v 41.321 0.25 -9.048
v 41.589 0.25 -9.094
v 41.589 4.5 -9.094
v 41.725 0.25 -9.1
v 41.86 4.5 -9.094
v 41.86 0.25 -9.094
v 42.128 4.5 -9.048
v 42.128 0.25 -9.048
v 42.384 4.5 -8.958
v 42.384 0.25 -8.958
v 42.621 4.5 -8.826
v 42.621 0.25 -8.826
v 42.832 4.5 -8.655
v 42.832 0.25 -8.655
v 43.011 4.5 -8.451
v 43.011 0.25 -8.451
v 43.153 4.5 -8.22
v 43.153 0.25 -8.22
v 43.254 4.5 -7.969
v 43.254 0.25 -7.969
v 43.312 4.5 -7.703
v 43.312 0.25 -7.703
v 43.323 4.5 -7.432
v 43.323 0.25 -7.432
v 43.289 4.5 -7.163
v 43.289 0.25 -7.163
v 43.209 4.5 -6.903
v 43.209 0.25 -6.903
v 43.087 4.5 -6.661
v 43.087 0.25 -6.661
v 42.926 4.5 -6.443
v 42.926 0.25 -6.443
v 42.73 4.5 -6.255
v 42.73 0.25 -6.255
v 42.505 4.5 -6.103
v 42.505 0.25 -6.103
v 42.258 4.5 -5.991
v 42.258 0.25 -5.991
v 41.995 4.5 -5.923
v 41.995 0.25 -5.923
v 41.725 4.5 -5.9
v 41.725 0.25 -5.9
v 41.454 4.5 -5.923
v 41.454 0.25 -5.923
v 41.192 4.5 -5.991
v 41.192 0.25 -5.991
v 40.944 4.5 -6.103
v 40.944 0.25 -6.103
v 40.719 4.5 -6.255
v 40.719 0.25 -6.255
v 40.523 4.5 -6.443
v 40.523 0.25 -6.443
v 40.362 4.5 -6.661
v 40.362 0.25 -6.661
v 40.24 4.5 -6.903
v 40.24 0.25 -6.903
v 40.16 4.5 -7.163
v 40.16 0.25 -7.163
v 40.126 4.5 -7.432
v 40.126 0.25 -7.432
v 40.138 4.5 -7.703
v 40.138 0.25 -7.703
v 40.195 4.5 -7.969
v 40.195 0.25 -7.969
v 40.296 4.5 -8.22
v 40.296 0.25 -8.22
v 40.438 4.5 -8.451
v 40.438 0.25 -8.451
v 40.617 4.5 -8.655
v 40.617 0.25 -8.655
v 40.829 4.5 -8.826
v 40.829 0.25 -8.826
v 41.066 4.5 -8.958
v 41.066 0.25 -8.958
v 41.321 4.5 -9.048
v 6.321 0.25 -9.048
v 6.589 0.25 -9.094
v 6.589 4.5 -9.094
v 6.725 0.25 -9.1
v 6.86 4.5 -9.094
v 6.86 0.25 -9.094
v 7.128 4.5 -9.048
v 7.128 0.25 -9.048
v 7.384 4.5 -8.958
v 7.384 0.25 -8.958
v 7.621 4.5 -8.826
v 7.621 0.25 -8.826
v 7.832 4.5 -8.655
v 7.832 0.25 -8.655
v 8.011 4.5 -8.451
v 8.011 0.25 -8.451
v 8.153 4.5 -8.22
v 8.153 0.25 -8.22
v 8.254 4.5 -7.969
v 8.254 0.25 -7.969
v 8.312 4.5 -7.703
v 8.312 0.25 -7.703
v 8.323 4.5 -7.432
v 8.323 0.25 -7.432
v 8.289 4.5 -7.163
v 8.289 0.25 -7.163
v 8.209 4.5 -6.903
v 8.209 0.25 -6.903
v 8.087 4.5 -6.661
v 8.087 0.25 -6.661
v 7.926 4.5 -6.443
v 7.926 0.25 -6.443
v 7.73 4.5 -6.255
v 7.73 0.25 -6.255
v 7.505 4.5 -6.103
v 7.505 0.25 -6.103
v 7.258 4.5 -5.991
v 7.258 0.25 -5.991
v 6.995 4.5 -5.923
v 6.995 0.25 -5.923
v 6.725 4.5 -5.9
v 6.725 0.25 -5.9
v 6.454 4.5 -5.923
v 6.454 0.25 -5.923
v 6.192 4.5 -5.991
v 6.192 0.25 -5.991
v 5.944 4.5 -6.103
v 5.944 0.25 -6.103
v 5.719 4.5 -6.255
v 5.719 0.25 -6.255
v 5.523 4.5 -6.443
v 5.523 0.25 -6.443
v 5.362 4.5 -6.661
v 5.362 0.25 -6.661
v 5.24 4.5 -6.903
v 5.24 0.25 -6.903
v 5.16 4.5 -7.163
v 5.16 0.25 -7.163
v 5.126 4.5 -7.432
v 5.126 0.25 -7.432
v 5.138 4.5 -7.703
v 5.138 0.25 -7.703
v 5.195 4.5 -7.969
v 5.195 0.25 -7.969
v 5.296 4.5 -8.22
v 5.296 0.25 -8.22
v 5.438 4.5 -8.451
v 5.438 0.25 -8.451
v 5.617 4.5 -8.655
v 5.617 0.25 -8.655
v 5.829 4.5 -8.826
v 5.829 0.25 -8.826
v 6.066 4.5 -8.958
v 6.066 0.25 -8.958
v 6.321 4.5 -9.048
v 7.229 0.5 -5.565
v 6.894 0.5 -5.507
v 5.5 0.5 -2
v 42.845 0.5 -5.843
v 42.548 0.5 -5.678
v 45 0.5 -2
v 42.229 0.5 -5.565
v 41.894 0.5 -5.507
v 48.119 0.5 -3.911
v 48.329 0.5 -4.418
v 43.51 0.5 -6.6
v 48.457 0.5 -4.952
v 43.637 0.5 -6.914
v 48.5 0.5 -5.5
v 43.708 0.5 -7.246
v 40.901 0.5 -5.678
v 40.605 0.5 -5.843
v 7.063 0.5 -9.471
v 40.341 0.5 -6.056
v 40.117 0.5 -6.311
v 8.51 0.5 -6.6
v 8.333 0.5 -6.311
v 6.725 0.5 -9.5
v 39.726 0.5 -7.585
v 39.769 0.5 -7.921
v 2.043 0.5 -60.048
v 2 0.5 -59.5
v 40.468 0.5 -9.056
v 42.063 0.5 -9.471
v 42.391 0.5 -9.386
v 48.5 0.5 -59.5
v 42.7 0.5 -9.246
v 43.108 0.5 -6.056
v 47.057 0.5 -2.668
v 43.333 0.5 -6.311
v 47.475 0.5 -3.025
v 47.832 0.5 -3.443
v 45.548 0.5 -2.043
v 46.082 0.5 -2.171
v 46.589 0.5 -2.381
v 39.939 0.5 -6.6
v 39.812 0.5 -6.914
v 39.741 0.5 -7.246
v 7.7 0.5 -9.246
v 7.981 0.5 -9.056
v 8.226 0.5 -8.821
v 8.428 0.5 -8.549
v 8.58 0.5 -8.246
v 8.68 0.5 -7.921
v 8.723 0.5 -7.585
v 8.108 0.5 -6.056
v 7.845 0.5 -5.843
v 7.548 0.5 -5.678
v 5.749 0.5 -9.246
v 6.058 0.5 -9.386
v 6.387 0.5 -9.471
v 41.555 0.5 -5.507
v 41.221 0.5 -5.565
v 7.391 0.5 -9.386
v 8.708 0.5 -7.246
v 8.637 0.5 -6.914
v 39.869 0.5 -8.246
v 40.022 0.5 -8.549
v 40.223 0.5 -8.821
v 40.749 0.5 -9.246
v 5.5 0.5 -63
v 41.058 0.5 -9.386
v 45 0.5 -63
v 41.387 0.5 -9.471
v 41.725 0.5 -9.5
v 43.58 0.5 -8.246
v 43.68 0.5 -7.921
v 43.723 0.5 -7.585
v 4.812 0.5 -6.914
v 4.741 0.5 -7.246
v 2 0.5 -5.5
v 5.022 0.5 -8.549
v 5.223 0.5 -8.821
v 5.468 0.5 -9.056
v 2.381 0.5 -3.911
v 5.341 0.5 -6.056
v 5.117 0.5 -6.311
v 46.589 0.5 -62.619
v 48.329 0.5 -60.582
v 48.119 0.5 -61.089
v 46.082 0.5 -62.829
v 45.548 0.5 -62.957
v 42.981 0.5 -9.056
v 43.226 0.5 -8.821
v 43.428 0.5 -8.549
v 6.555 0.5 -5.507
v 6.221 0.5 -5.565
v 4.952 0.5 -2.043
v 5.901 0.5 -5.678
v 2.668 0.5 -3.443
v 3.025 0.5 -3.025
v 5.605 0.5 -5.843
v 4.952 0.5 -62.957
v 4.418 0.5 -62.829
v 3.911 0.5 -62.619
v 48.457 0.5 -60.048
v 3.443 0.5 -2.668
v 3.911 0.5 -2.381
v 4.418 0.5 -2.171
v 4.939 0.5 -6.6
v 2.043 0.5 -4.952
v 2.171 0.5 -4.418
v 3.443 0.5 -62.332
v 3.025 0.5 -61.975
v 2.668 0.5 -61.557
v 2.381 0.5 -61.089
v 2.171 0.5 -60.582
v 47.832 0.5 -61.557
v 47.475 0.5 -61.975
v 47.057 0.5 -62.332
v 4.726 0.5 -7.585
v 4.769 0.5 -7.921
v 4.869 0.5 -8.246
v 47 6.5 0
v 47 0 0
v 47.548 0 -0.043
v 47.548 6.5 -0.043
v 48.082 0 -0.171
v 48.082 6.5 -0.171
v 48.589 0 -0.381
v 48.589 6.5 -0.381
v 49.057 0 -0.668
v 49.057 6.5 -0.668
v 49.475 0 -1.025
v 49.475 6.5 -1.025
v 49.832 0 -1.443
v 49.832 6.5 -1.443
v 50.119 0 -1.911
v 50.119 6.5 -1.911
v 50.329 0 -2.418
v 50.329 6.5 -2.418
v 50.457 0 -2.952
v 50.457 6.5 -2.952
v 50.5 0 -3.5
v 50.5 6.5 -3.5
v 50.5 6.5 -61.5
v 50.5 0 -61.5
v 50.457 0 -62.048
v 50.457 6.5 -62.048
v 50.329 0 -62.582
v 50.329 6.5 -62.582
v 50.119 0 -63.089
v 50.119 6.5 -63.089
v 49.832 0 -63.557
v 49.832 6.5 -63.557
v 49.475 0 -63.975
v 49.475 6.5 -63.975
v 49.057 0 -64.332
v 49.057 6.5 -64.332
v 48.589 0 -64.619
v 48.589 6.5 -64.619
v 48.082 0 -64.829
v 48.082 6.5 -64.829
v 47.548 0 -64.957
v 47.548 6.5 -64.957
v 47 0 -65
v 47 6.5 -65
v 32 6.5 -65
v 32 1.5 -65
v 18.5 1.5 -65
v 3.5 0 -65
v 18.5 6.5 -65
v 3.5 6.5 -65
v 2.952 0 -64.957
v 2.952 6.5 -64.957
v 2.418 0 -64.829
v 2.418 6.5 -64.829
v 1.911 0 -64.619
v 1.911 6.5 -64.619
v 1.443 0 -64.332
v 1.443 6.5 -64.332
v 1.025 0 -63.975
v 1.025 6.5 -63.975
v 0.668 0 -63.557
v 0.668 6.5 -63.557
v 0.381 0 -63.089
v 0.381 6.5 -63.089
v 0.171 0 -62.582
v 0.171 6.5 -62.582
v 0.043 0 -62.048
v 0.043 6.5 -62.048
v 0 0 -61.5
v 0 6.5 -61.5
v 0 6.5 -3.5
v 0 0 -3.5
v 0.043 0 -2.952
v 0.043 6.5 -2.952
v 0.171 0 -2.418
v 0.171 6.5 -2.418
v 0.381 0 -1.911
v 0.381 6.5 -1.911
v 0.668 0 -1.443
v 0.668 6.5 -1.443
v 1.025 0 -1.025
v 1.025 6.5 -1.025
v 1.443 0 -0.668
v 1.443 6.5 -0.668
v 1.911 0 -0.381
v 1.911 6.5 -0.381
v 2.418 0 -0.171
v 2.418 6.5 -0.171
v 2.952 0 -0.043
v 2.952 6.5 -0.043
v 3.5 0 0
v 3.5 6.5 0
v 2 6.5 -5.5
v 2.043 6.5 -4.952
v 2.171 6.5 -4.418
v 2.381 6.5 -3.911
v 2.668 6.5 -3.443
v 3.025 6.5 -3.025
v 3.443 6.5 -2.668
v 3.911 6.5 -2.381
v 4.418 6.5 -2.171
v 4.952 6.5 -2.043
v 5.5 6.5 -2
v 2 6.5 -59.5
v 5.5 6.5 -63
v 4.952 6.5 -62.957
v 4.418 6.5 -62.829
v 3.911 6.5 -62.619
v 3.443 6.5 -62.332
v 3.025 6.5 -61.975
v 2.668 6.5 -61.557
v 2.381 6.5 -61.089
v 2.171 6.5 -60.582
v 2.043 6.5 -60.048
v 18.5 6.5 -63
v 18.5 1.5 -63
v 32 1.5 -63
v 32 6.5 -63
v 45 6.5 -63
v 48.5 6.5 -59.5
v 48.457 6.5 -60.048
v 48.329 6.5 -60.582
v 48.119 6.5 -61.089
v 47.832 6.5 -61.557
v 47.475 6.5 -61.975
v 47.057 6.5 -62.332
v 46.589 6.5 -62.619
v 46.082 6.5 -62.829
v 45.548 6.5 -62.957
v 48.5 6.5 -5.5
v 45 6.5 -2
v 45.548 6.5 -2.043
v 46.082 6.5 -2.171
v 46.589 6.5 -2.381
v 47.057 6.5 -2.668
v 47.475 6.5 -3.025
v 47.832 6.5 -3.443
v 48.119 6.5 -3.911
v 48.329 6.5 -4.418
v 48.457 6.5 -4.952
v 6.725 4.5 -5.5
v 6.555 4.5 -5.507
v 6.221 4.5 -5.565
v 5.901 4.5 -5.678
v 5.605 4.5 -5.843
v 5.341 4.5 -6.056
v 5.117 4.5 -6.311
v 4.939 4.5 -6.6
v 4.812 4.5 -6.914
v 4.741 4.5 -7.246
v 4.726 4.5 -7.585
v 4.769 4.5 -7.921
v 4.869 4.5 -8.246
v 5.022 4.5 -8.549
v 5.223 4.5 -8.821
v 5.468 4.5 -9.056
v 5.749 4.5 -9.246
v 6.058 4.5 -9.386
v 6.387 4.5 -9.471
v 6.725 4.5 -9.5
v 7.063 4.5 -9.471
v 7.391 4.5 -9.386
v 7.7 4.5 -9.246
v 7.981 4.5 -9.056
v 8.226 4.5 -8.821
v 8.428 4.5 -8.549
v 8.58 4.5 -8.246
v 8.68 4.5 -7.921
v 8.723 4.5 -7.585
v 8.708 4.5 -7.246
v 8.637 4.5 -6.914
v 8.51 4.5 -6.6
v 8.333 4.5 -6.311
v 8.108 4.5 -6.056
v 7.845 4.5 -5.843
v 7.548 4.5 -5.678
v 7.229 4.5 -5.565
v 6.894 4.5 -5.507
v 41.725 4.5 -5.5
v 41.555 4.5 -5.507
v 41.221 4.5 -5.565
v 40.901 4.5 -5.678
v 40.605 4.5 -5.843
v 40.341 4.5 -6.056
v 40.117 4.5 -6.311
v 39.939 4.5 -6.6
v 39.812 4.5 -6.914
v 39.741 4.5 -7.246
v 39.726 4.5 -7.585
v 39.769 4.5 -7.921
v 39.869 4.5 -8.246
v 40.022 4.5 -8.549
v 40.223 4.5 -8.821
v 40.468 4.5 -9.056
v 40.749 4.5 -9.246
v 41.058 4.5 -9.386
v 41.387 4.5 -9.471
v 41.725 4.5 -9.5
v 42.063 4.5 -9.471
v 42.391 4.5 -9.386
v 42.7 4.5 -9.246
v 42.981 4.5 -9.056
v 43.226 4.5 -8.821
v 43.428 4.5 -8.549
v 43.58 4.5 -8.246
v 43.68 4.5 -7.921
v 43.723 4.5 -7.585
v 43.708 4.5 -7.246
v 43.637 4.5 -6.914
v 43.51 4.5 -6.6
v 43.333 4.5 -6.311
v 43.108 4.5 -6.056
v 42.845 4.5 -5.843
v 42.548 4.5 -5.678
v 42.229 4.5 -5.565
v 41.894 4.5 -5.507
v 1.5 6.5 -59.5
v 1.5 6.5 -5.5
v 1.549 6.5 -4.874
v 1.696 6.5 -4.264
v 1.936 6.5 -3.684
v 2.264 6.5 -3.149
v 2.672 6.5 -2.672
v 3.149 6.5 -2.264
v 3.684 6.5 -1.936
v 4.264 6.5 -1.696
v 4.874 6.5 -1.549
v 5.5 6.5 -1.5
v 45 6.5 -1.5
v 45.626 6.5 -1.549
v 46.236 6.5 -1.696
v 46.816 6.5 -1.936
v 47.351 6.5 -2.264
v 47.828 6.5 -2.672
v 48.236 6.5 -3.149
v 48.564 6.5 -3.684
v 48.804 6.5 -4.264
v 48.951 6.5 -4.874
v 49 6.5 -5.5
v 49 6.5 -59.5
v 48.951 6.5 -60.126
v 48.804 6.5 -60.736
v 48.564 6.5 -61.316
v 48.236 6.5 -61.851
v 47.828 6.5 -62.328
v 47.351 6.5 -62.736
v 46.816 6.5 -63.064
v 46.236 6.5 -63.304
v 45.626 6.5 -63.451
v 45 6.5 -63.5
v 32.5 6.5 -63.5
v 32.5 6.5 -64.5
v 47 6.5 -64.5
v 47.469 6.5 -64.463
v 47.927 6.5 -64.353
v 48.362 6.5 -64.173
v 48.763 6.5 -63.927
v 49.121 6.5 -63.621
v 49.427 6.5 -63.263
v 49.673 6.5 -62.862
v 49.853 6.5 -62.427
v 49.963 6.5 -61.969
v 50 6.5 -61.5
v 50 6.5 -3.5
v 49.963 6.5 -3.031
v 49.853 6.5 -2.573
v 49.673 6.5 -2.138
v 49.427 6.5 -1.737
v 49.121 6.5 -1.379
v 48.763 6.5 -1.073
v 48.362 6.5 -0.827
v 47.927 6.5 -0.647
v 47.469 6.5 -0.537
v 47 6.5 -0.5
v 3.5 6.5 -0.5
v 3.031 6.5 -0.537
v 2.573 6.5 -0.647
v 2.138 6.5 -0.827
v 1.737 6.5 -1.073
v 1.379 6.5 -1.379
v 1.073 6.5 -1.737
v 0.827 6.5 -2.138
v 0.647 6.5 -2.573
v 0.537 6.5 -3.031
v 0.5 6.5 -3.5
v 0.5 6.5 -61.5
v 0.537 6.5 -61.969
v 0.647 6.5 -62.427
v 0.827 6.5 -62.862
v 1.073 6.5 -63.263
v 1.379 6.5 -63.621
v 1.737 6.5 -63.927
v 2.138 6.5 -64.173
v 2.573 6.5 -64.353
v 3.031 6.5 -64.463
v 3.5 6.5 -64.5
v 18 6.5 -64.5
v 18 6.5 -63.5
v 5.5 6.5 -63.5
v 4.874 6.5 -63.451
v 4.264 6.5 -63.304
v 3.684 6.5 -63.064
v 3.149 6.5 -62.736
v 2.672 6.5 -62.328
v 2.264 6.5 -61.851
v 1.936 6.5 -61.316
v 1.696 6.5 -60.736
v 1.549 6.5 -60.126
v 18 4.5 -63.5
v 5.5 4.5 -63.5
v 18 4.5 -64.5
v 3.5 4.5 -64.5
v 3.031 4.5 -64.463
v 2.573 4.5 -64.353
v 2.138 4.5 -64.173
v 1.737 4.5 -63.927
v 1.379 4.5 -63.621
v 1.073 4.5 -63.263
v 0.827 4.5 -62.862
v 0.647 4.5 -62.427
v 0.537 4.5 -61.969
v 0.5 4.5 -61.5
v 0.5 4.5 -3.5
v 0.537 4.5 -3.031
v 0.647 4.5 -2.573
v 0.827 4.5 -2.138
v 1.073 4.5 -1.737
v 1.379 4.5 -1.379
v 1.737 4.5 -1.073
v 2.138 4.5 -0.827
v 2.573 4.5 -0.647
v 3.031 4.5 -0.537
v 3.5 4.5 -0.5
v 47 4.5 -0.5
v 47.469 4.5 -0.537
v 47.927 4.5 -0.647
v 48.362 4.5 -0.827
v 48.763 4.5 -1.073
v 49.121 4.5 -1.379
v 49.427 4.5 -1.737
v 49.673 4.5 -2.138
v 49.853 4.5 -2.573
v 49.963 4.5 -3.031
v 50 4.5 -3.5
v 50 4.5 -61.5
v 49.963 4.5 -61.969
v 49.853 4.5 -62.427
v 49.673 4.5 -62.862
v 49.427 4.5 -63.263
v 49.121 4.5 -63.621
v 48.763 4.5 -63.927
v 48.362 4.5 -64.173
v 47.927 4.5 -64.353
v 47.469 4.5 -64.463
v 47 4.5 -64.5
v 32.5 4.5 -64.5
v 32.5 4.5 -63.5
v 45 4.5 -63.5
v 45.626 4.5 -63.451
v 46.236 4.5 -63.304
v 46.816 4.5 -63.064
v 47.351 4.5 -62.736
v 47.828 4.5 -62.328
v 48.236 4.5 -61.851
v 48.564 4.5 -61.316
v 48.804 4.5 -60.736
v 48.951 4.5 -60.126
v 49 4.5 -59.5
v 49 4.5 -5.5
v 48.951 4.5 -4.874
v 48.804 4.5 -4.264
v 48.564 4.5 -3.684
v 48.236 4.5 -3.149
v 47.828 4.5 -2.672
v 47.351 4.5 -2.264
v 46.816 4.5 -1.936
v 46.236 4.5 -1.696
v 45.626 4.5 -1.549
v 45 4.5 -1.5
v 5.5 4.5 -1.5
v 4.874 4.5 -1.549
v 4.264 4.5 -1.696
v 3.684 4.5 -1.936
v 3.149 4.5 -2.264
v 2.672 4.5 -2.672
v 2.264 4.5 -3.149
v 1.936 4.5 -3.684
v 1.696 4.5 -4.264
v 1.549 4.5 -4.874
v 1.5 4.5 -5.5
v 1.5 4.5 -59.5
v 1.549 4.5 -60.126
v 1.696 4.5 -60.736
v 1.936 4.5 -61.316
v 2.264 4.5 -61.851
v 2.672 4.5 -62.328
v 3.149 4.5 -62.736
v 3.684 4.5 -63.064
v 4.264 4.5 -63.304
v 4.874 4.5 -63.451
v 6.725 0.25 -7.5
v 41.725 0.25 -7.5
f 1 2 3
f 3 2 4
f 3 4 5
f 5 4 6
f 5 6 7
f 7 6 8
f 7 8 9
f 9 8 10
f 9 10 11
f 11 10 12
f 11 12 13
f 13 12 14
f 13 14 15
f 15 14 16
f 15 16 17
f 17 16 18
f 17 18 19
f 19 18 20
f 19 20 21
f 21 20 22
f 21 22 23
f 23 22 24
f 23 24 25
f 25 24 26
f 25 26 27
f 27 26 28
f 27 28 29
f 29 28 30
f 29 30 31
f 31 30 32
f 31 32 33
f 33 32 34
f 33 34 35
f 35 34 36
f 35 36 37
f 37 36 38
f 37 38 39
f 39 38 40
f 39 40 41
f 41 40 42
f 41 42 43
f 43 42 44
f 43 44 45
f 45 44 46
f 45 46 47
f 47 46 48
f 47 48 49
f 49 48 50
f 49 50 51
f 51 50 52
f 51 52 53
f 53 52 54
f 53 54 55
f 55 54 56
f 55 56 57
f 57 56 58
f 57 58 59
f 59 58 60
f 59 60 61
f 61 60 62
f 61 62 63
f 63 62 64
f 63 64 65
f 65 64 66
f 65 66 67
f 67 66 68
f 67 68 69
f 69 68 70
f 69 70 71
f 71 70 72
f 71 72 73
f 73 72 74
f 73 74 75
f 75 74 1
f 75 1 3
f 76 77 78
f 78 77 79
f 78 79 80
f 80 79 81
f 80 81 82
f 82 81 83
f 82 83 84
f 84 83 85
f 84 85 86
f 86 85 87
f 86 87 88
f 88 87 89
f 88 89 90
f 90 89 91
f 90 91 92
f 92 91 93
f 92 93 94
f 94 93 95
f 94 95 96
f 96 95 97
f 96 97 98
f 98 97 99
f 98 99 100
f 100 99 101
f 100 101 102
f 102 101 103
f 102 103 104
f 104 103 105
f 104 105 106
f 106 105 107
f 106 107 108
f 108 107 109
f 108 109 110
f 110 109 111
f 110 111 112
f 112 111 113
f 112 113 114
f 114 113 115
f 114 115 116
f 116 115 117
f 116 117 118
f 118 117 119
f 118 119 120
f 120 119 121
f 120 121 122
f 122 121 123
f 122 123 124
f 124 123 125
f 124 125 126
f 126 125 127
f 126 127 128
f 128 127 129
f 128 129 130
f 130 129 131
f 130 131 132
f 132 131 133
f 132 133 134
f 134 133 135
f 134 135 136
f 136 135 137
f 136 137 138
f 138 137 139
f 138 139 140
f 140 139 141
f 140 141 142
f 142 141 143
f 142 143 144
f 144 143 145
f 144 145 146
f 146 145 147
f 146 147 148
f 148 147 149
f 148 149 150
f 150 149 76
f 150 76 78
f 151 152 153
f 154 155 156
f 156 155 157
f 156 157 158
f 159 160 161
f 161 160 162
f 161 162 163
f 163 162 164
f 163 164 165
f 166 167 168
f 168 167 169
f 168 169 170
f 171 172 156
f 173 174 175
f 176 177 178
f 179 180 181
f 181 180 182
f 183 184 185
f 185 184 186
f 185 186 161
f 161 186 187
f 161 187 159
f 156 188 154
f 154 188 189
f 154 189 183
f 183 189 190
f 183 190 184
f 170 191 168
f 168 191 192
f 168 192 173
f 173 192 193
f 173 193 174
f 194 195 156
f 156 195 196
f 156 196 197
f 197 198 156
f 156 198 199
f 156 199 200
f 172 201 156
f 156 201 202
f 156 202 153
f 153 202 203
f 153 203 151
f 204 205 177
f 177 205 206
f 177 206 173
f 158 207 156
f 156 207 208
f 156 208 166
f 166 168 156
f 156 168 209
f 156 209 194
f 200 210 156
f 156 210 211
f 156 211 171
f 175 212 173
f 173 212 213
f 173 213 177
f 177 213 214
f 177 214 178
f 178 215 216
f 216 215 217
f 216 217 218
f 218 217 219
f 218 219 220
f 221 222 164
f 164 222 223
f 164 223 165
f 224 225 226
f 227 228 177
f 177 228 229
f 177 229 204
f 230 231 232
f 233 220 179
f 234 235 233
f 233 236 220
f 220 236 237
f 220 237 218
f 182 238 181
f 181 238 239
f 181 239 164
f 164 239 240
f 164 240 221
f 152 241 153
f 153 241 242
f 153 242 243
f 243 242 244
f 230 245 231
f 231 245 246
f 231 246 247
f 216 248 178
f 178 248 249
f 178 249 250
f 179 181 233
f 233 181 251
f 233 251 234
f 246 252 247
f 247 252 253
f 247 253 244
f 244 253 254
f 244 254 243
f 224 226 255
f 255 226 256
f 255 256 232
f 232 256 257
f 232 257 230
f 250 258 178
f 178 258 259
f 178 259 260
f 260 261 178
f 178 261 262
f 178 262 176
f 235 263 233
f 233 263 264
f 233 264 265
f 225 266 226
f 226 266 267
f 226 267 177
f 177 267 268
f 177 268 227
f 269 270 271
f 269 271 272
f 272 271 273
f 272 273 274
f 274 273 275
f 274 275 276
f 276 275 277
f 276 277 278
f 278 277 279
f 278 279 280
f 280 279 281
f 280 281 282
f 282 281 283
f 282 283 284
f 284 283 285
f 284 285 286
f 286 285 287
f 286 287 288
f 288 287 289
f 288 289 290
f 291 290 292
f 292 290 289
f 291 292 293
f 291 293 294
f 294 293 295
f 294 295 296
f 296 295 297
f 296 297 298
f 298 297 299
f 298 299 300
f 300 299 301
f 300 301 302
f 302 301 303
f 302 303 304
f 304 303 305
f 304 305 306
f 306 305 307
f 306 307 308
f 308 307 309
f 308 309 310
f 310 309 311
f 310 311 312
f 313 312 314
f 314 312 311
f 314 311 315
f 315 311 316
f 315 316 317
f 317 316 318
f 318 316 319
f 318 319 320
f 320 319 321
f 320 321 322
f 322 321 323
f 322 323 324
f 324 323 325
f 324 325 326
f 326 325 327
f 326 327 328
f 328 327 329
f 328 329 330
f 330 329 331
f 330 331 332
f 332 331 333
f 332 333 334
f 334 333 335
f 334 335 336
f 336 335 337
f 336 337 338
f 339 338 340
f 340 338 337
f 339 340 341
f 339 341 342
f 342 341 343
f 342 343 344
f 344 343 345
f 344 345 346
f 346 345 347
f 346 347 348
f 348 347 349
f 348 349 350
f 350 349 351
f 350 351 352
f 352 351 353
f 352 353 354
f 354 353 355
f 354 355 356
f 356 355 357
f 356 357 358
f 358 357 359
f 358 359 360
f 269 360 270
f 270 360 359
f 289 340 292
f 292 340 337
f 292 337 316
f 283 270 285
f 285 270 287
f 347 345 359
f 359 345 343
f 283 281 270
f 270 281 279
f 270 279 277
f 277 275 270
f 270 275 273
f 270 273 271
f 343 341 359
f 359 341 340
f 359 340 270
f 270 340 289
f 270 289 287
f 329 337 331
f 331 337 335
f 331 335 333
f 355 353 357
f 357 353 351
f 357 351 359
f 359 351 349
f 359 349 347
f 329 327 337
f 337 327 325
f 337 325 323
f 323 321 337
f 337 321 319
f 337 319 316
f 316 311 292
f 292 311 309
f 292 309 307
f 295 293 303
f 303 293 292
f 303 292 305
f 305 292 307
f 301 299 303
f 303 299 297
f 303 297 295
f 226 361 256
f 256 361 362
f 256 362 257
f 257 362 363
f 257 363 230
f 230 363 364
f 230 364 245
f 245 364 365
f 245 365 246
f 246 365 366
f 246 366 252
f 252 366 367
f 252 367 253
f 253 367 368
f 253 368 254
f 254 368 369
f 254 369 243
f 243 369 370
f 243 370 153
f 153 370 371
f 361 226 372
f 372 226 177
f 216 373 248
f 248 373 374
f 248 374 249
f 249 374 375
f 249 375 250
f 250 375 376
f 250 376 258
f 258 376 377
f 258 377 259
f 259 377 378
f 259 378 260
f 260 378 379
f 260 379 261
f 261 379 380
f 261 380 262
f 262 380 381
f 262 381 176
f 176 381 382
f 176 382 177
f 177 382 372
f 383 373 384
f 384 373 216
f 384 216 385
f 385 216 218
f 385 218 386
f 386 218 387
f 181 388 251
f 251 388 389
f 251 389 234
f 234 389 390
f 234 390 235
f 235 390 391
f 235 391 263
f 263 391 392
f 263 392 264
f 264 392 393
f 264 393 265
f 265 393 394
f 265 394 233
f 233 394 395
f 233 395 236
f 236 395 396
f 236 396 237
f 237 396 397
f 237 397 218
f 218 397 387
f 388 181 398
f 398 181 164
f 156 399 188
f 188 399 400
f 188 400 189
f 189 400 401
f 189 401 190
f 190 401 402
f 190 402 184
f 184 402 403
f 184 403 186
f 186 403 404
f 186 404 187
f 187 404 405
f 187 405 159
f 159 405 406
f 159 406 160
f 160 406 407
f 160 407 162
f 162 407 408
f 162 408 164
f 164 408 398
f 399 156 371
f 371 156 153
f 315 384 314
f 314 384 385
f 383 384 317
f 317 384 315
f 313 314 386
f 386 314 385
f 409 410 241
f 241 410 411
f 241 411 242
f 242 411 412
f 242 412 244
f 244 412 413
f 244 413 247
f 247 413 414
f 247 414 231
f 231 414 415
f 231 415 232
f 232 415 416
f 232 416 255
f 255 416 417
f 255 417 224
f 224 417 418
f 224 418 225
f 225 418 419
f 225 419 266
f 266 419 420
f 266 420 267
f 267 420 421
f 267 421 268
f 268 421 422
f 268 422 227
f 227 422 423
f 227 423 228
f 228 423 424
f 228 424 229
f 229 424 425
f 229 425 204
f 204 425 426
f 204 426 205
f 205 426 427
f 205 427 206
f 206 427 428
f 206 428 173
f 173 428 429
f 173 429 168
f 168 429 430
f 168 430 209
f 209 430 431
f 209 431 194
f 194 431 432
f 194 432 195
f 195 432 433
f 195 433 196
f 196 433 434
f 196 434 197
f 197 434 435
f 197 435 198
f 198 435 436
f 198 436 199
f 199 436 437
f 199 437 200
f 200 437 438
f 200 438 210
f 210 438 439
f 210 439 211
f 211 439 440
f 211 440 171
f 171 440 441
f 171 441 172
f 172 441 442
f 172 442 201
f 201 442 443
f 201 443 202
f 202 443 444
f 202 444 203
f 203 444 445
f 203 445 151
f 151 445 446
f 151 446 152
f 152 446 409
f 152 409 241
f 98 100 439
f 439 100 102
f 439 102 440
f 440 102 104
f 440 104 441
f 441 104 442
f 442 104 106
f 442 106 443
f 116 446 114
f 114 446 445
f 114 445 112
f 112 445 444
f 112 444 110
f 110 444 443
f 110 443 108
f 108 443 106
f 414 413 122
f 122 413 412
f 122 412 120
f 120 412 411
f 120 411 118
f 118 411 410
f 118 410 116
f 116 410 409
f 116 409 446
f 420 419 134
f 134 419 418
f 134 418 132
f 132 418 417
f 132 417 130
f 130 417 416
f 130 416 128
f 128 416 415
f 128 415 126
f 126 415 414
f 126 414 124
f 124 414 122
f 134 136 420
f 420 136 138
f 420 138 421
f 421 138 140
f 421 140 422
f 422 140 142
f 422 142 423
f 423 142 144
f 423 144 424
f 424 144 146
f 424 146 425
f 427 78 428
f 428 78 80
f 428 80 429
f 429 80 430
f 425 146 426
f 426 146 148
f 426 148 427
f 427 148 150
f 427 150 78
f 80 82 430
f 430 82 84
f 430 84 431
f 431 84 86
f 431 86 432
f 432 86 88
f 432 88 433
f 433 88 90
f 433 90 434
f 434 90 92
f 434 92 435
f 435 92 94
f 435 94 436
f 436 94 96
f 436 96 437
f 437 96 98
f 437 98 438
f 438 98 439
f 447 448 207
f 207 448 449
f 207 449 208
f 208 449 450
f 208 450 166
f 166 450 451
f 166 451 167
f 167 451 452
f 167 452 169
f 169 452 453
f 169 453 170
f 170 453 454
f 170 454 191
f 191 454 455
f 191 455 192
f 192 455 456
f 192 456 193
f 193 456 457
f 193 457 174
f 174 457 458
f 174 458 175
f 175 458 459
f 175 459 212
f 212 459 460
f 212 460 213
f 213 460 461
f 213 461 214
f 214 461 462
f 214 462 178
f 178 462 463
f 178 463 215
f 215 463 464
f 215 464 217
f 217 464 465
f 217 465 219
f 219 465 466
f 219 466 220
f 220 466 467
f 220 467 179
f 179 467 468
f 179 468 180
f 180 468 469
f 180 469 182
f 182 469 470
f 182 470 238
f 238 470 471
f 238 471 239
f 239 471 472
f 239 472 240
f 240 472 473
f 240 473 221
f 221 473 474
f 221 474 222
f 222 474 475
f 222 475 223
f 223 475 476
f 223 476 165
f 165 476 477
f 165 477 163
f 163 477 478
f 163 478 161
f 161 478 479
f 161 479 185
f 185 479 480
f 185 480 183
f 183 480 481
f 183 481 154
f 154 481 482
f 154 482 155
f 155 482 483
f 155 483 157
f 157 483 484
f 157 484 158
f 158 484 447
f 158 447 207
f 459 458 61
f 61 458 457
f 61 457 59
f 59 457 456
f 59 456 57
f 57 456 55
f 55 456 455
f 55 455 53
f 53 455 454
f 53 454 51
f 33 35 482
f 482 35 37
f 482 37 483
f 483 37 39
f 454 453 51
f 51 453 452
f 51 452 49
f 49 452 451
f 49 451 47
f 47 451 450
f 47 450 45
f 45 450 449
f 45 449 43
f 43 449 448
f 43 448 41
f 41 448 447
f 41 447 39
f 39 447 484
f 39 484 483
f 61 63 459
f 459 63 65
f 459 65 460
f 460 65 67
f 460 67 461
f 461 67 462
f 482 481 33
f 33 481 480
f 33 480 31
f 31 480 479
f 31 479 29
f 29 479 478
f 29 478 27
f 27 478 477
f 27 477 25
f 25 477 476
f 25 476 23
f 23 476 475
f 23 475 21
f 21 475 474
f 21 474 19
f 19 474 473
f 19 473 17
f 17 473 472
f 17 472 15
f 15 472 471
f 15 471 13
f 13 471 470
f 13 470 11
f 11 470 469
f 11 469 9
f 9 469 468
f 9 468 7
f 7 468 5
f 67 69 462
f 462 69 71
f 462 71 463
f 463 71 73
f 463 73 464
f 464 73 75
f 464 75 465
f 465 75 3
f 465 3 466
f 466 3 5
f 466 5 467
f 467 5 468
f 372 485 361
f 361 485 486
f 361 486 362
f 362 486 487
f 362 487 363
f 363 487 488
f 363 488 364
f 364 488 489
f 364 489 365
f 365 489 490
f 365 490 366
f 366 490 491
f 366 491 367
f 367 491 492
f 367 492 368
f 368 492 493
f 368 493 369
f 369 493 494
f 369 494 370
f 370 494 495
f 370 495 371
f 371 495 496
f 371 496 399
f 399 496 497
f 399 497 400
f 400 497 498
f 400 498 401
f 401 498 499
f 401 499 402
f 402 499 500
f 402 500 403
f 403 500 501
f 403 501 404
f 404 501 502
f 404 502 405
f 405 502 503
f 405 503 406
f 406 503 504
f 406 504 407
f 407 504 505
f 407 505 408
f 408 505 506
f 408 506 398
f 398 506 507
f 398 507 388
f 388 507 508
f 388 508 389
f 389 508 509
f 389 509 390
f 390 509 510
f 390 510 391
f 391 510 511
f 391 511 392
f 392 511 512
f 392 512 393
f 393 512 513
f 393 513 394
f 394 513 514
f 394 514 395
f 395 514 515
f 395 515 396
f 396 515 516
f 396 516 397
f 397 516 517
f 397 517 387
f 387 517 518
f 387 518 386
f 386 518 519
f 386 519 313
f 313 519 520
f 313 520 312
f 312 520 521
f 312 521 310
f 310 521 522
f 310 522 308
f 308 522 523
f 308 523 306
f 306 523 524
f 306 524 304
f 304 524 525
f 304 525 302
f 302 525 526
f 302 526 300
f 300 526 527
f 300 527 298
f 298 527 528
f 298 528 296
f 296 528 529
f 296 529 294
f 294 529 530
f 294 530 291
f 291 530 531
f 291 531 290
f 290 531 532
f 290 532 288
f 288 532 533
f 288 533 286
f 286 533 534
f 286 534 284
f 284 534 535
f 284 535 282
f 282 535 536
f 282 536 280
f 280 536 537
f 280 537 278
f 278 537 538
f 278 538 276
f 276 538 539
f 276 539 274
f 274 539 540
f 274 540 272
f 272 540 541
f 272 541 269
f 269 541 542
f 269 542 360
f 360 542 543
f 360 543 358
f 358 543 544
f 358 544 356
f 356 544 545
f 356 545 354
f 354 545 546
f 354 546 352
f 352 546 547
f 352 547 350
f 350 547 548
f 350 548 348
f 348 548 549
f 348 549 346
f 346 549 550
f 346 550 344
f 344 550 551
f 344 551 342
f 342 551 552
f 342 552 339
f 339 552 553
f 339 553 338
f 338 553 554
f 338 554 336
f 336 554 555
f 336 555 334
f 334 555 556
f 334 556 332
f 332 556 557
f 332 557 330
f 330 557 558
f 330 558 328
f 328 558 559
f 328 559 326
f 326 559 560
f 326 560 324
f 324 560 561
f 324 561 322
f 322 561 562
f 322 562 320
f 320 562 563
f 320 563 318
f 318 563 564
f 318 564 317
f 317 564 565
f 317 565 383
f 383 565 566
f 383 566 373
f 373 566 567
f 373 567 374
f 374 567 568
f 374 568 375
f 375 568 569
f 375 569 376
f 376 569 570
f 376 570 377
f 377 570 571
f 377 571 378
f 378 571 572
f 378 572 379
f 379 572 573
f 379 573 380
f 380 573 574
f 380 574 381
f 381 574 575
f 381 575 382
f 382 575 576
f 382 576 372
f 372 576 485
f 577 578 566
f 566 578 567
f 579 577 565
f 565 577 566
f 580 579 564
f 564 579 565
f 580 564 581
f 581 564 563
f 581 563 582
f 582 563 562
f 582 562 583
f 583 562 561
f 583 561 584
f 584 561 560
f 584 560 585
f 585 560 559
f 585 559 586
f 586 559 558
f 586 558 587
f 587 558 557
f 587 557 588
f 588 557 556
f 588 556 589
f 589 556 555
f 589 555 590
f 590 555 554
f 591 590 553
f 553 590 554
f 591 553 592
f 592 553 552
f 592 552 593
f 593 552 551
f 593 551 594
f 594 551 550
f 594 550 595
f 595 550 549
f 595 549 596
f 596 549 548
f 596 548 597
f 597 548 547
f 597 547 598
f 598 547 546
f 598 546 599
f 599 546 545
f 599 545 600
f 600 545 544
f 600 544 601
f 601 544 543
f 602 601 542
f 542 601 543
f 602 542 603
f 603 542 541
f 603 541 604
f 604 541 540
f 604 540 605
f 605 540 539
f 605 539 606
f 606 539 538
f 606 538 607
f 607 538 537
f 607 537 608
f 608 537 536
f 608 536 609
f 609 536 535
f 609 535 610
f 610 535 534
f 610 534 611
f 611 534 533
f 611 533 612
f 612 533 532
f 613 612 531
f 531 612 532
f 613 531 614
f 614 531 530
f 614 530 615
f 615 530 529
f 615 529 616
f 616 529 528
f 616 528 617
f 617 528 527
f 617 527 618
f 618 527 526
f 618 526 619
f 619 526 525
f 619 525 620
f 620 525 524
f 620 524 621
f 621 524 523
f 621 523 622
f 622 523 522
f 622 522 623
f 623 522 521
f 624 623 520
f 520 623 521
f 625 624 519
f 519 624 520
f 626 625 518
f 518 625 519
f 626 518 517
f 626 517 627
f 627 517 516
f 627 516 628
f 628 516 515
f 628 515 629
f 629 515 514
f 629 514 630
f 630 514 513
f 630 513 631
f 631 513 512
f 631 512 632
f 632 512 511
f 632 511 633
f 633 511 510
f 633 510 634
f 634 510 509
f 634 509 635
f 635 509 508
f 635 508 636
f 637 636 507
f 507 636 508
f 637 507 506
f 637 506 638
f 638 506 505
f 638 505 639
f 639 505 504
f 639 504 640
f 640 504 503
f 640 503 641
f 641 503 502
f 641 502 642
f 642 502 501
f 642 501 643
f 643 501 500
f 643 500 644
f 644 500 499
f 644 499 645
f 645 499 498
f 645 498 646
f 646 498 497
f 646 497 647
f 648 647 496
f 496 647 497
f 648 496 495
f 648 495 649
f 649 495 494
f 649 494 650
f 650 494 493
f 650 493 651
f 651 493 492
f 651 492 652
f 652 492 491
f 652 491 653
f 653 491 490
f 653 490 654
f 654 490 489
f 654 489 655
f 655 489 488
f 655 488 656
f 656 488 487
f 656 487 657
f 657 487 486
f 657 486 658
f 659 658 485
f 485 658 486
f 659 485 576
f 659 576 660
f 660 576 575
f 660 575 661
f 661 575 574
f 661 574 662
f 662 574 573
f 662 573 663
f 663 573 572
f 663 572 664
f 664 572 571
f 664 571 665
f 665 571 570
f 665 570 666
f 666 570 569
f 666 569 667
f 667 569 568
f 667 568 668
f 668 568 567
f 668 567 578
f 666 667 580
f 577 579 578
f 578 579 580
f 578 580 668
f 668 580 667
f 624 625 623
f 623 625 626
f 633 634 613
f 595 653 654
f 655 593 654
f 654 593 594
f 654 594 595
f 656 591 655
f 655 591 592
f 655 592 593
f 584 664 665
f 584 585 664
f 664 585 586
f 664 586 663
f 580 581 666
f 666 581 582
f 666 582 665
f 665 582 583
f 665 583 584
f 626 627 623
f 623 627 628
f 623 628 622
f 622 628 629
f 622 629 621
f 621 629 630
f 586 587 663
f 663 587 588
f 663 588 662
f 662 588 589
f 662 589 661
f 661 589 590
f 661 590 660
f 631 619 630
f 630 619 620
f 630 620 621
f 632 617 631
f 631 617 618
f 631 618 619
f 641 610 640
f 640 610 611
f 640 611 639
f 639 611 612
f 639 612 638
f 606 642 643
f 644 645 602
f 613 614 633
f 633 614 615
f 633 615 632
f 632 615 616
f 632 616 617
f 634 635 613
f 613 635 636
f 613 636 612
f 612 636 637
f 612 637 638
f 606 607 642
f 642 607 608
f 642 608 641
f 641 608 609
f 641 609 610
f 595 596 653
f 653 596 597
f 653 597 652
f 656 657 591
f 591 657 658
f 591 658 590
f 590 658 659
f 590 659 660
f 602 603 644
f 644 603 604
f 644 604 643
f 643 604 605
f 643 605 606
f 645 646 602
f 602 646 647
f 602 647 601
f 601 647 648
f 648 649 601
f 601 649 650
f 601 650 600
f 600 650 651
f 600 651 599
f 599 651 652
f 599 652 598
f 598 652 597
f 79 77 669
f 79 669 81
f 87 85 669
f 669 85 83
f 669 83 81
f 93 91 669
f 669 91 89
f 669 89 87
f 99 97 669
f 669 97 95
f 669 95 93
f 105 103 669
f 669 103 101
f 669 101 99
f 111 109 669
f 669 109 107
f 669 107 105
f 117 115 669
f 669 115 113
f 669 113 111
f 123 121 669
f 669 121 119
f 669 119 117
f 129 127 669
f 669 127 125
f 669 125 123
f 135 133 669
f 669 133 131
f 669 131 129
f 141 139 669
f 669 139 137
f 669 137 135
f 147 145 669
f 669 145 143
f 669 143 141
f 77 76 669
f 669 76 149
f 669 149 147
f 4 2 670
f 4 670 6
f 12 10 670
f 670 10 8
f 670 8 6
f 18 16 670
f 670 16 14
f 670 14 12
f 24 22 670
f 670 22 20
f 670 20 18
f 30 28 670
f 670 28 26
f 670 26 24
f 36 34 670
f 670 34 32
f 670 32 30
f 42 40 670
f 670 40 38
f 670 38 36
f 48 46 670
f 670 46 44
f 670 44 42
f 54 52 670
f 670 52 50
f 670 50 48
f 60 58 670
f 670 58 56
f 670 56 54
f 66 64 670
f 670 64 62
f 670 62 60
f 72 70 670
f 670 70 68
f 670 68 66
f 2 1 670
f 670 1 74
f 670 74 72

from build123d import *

# Parameters (mm, degrees)
BOSS_EXTRUDE1_DEPTH         = 4.5
CUT_EXTRUDE1_DEPTH          = 4
SKETCH3_W                   = 13.5
SKETCH3_H                   = 6
CUT_EXTRUDE3_DEPTH          = 15
SKETCH4_R                   = 1.6
CUT_EXTRUDE4_DEPTH          = 40
SALIENTE_EXTRUIR1_START     = 4
CROQUIS1_R                  = 2
CROQUIS1_R_2                = 1.6
SALIENTE_EXTRUIR1_DEPTH     = 4
SUPERFICIE_EXTRUIR2_1_DEPTH = 2
DAR_ESPESOR1_T1             = 0.5
SALIENTE_EXTRUIR2_START     = -0.25
CROQUIS3_R                  = 1.6
SALIENTE_EXTRUIR2_DEPTH     = 0.25


with BuildPart() as part:
    # Sketch1 → Boss-Extrude1 (new body)
    with BuildSketch(Plane(origin=(0, 0, 0), x_dir=(1, 0, 0), z_dir=(0, 1, 0))):
        with BuildLine():
            Line((3.5, 0), (47, 0))
            ThreePointArc((47, 0), (49.474873734, 1.025126266), (50.5, 3.5))
            Line((50.5, 3.5), (50.5, 61.5))
            ThreePointArc((50.5, 61.5), (49.474873734, 63.974873734), (47, 65))
            Line((47, 65), (3.5, 65))
            ThreePointArc((3.5, 65), (1.025126266, 63.974873734), (0, 61.5))
            Line((0, 61.5), (0, 3.5))
            ThreePointArc((0, 3.5), (1.025126266, 1.025126266), (3.5, 0))
        make_face()
    extrude(amount=BOSS_EXTRUDE1_DEPTH)

    # Sketch2 → Cut-Extrude1 (cut)
    with BuildSketch(Plane(origin=(0, 4.5, 0), x_dir=(1, 0, 0), z_dir=(0, 1, 0))):
        with BuildLine():
            Line((5.5, 2), (45, 2))
            ThreePointArc((45, 2), (47.474873734, 3.025126266), (48.5, 5.5))
            Line((48.5, 5.5), (48.5, 59.5))
            ThreePointArc((48.5, 59.5), (47.474873734, 61.974873734), (45, 63))
            Line((45, 63), (5.5, 63))
            ThreePointArc((5.5, 63), (3.025126266, 61.974873734), (2, 59.5))
            Line((2, 59.5), (2, 5.5))
            ThreePointArc((2, 5.5), (3.025126266, 3.025126266), (5.5, 2))
        make_face()
    extrude(amount=-CUT_EXTRUDE1_DEPTH, mode=Mode.SUBTRACT)

    # Sketch3 → Cut-Extrude3 (cut)
    with BuildSketch(Plane(origin=(0, 0, -65), x_dir=(-1, 0, 0), z_dir=(0, 0, -1))):
        with Locations((-25.25, 4.5)):
            Rectangle(SKETCH3_W, SKETCH3_H)
    extrude(amount=-CUT_EXTRUDE3_DEPTH, mode=Mode.SUBTRACT)

    # Sketch4 → Cut-Extrude4 (cut)
    with BuildSketch(Plane(origin=(0, 0.5, 0), x_dir=(1, 0, 0), z_dir=(0, 1, 0))):
        with Locations(Location((6.724572176, 7.5, 0), (0, 0, 270))):
            Circle(SKETCH4_R)
        with Locations(Location((41.724572176, 7.5, 0), (0, 0, 270))):
            Circle(SKETCH4_R)
    extrude(amount=-CUT_EXTRUDE4_DEPTH, mode=Mode.SUBTRACT)

    # Croquis1 → Saliente-Extruir1 (add)
    # profile 1 of 2: a face of its own
    with BuildSketch(Plane(origin=(0, 0.5, 0), x_dir=(1, 0, 0), z_dir=(0, 1, 0)).offset(SALIENTE_EXTRUIR1_START)):
        with Locations(Location((6.724572176, 7.5, 0), (0, 0, 90))):
            Circle(CROQUIS1_R)
        with Locations(Location((6.724572176, 7.5, 0), (0, 0, 270))):
            Circle(CROQUIS1_R_2, mode=Mode.SUBTRACT)
    # profile 2 of 2: a face of its own
    with BuildSketch(Plane(origin=(0, 0.5, 0), x_dir=(1, 0, 0), z_dir=(0, 1, 0)).offset(SALIENTE_EXTRUIR1_START)):
        with Locations(Location((41.724572176, 7.5, 0), (0, 0, 90))):
            Circle(CROQUIS1_R)
        with Locations(Location((41.724572176, 7.5, 0), (0, 0, 270))):
            Circle(CROQUIS1_R_2, mode=Mode.SUBTRACT)
    extrude(amount=-SALIENTE_EXTRUIR1_DEPTH)

    # Superficie-Extruir2: a surface, the sketch's curves swept straight by 2 mm
    with BuildLine(Plane(origin=(0, 4.5, 0), x_dir=(1, 0, 0), z_dir=(0, 1, 0)), mode=Mode.PRIVATE) as superficie_extruir2_1_path:
        Line((18.5, 63), (18.5, 65))
        Line((18.5, 65), (3.5, 65))
        ThreePointArc((3.5, 65), (1.025126266, 63.974873734), (0, 61.5))
        Line((0, 61.5), (0, 3.5))
        ThreePointArc((0, 3.5), (1.025126266, 1.025126266), (3.5, 0))
        Line((3.5, 0), (47, 0))
        ThreePointArc((47, 0), (49.474873734, 1.025126266), (50.5, 3.5))
        Line((50.5, 3.5), (50.5, 61.5))
        ThreePointArc((50.5, 61.5), (49.474873734, 63.974873734), (47, 65))
        Line((47, 65), (32, 65))
        Line((32, 65), (32, 63))
        Line((32, 63), (45, 63))
        ThreePointArc((45, 63), (47.474873734, 61.974873734), (48.5, 59.5))
        Line((48.5, 59.5), (48.5, 5.5))
        ThreePointArc((48.5, 5.5), (47.474873734, 3.025126266), (45, 2))
        Line((45, 2), (5.5, 2))
        ThreePointArc((5.5, 2), (3.025126266, 3.025126266), (2, 5.5))
        Line((2, 5.5), (2, 59.5))
        ThreePointArc((2, 59.5), (3.025126266, 61.974873734), (5.5, 63))
        Line((5.5, 63), (18.5, 63))
    superficie_extruir2_1 = Shell.extrude(superficie_extruir2_1_path.wire(), (0 * SUPERFICIE_EXTRUIR2_1_DEPTH, 1 * SUPERFICIE_EXTRUIR2_1_DEPTH, 0 * SUPERFICIE_EXTRUIR2_1_DEPTH))
    add(Solid.thicken(superficie_extruir2_1, DAR_ESPESOR1_T1))

    # Croquis3 → Saliente-Extruir2 (add)
    with BuildSketch(Plane.XZ.offset(SALIENTE_EXTRUIR2_START)):
        with Locations(Location((6.724572176, -7.5, 0), (0, 0, 90))):
            Circle(CROQUIS3_R)
        with Locations(Location((41.724572176, -7.5, 0), (0, 0, 90))):
            Circle(CROQUIS3_R)
    extrude(amount=SALIENTE_EXTRUIR2_DEPTH)


solid = part.part
